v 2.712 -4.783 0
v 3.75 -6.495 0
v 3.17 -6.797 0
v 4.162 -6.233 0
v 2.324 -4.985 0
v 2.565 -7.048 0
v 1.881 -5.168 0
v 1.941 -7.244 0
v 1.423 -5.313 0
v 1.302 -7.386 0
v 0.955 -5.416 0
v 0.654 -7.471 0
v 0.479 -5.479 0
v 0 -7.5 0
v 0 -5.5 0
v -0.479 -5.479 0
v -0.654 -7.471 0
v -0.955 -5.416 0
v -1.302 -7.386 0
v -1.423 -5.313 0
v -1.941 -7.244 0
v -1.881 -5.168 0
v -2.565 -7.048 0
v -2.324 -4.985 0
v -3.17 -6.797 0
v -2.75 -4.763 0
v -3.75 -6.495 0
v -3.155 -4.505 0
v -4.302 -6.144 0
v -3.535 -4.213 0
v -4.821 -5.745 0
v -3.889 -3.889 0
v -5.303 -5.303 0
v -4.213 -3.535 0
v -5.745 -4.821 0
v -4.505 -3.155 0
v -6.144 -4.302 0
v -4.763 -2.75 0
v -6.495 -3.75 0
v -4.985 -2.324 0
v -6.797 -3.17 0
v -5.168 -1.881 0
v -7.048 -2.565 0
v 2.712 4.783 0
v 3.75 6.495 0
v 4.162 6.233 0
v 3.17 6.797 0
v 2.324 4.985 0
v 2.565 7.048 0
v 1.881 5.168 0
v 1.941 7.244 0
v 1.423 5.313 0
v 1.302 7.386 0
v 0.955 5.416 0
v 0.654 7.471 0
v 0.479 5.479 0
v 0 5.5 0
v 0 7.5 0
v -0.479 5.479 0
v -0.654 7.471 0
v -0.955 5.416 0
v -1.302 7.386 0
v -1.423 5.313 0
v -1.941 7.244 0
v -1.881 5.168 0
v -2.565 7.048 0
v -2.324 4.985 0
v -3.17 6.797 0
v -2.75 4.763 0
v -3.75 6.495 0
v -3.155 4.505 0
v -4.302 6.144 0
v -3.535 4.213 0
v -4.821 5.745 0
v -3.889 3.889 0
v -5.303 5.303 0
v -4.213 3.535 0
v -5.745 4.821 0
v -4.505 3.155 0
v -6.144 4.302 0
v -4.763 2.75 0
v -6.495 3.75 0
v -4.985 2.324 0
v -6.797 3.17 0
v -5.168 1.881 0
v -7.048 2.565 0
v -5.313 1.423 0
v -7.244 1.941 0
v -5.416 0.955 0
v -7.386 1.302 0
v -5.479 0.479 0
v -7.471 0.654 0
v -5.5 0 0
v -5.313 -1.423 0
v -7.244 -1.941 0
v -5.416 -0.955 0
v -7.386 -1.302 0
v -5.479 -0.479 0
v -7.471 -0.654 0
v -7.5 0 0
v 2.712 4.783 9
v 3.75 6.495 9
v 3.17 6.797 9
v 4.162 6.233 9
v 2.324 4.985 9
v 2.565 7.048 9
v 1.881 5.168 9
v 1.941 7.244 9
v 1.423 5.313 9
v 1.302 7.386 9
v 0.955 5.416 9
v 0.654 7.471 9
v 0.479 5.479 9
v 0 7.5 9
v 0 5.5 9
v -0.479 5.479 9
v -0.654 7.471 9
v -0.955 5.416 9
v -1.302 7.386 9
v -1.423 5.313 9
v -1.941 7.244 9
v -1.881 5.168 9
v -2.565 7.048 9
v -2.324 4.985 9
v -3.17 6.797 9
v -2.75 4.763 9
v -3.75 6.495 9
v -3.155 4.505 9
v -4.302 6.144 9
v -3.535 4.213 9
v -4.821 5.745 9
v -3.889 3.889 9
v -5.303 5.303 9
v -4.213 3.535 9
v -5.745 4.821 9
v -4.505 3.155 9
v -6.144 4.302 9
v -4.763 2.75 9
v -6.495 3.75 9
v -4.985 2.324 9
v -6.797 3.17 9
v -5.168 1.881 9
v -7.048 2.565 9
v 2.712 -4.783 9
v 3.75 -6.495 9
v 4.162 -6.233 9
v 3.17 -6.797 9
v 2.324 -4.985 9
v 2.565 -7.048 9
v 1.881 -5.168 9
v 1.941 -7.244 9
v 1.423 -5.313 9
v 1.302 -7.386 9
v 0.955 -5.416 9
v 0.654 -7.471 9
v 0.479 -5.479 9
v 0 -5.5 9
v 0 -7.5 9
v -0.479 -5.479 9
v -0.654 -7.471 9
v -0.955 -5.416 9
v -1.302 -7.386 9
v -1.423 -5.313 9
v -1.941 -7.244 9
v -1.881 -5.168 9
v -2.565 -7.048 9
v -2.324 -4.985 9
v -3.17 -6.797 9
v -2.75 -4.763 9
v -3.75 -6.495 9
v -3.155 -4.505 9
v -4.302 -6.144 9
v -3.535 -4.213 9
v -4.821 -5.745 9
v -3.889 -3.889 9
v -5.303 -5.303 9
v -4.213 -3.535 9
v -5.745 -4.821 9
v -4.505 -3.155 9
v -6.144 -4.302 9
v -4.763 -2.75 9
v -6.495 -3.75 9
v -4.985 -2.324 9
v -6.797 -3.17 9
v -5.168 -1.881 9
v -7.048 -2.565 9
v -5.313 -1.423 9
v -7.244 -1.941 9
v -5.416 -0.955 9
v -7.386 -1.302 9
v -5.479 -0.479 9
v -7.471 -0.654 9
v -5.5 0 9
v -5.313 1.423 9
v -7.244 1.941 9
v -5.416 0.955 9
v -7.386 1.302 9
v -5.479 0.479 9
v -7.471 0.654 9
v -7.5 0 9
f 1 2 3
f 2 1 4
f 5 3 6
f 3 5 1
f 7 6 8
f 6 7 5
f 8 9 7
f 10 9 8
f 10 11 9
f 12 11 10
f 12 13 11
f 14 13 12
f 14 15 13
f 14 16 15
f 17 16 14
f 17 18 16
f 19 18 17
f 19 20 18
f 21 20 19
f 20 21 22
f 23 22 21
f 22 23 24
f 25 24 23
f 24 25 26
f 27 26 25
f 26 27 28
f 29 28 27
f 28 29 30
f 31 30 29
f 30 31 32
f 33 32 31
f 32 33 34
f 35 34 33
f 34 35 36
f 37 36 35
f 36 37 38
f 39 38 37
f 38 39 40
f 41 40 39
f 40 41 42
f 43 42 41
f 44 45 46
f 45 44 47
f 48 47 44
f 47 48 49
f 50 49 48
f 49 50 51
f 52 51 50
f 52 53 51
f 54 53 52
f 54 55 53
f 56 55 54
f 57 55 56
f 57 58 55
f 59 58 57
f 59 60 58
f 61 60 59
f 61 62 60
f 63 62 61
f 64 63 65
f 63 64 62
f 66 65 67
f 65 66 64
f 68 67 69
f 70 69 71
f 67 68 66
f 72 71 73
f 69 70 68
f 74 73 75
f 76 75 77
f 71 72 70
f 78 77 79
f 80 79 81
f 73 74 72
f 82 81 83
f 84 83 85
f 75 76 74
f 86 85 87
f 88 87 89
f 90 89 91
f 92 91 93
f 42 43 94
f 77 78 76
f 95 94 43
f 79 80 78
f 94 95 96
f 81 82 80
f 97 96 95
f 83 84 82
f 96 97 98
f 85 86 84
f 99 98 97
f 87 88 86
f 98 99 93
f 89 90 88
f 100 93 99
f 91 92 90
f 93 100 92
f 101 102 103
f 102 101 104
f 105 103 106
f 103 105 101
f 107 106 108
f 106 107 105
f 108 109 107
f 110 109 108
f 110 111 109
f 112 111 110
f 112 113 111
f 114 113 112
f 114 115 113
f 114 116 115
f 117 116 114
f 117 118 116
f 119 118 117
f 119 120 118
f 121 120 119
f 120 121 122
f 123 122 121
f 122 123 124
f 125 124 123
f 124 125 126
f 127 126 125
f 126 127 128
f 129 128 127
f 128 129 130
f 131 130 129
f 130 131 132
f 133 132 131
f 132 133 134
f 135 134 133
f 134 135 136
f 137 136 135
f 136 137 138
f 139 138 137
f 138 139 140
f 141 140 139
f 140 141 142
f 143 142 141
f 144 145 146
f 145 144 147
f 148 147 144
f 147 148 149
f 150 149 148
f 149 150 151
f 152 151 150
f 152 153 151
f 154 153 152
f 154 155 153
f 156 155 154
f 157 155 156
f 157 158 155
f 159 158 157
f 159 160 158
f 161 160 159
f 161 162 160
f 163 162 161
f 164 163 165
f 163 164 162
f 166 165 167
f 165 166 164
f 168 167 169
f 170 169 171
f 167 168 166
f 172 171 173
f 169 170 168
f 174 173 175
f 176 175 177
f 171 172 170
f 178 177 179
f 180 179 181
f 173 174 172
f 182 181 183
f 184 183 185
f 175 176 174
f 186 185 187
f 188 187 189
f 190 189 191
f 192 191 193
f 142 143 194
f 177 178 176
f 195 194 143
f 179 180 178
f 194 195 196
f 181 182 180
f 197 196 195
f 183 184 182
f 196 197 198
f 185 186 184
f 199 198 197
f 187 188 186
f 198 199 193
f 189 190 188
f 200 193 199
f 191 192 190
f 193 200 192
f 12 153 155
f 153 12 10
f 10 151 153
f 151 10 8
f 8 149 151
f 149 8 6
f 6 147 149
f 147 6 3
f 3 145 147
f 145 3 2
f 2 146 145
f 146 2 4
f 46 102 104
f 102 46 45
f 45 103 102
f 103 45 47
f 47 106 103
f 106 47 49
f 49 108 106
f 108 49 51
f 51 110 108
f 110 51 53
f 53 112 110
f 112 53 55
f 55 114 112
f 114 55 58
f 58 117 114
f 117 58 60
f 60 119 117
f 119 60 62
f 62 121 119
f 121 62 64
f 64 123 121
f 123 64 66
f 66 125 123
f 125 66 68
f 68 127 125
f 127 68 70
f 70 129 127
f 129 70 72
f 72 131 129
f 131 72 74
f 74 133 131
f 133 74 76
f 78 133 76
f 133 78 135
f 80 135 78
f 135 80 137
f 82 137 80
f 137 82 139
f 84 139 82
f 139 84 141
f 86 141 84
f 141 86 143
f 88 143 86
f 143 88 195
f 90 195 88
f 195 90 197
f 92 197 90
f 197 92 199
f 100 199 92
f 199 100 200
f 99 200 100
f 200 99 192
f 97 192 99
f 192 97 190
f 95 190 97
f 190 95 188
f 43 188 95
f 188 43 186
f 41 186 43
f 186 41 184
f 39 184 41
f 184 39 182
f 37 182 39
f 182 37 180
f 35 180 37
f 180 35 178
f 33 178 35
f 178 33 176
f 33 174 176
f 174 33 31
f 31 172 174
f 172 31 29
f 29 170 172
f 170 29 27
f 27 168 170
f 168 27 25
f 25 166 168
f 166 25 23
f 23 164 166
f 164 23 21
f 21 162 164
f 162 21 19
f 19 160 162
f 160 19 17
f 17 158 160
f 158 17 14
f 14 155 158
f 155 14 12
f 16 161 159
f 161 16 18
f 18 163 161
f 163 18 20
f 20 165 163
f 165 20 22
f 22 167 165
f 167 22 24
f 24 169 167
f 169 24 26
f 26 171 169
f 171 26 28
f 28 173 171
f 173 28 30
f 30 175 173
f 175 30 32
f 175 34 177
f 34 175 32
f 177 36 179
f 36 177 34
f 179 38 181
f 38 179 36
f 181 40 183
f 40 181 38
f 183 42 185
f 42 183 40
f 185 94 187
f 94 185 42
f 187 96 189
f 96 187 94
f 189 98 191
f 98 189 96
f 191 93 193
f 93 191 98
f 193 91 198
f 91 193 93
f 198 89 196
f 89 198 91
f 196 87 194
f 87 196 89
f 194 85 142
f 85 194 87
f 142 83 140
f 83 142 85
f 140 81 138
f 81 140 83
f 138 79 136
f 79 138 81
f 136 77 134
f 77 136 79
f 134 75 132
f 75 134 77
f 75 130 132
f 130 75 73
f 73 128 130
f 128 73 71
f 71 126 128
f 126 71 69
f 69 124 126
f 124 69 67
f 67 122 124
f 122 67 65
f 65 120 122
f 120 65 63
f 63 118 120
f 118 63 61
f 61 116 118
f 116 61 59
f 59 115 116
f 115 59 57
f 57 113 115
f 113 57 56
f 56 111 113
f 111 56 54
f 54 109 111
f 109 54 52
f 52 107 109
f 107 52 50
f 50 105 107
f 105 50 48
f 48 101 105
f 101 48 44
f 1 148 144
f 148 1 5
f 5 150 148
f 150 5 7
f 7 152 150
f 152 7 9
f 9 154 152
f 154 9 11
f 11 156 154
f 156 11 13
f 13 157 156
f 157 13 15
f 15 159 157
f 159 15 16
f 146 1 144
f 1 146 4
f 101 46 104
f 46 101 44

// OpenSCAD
difference() {
	linear_extrude(height = 9) {
		difference() {
			circle($fn = 72, r = 7.5);
			circle($fn = 72, r = 5.5);
		}
	}
	translate(v = [5, 0, 0]) {
		rotate(a = [0, 0, 45]) {
			translate(v = [-5.0, -5.0, -50]) {
				linear_extrude(height = 100) {
					square(size = 10);
				}
			}
		}
	}
}
